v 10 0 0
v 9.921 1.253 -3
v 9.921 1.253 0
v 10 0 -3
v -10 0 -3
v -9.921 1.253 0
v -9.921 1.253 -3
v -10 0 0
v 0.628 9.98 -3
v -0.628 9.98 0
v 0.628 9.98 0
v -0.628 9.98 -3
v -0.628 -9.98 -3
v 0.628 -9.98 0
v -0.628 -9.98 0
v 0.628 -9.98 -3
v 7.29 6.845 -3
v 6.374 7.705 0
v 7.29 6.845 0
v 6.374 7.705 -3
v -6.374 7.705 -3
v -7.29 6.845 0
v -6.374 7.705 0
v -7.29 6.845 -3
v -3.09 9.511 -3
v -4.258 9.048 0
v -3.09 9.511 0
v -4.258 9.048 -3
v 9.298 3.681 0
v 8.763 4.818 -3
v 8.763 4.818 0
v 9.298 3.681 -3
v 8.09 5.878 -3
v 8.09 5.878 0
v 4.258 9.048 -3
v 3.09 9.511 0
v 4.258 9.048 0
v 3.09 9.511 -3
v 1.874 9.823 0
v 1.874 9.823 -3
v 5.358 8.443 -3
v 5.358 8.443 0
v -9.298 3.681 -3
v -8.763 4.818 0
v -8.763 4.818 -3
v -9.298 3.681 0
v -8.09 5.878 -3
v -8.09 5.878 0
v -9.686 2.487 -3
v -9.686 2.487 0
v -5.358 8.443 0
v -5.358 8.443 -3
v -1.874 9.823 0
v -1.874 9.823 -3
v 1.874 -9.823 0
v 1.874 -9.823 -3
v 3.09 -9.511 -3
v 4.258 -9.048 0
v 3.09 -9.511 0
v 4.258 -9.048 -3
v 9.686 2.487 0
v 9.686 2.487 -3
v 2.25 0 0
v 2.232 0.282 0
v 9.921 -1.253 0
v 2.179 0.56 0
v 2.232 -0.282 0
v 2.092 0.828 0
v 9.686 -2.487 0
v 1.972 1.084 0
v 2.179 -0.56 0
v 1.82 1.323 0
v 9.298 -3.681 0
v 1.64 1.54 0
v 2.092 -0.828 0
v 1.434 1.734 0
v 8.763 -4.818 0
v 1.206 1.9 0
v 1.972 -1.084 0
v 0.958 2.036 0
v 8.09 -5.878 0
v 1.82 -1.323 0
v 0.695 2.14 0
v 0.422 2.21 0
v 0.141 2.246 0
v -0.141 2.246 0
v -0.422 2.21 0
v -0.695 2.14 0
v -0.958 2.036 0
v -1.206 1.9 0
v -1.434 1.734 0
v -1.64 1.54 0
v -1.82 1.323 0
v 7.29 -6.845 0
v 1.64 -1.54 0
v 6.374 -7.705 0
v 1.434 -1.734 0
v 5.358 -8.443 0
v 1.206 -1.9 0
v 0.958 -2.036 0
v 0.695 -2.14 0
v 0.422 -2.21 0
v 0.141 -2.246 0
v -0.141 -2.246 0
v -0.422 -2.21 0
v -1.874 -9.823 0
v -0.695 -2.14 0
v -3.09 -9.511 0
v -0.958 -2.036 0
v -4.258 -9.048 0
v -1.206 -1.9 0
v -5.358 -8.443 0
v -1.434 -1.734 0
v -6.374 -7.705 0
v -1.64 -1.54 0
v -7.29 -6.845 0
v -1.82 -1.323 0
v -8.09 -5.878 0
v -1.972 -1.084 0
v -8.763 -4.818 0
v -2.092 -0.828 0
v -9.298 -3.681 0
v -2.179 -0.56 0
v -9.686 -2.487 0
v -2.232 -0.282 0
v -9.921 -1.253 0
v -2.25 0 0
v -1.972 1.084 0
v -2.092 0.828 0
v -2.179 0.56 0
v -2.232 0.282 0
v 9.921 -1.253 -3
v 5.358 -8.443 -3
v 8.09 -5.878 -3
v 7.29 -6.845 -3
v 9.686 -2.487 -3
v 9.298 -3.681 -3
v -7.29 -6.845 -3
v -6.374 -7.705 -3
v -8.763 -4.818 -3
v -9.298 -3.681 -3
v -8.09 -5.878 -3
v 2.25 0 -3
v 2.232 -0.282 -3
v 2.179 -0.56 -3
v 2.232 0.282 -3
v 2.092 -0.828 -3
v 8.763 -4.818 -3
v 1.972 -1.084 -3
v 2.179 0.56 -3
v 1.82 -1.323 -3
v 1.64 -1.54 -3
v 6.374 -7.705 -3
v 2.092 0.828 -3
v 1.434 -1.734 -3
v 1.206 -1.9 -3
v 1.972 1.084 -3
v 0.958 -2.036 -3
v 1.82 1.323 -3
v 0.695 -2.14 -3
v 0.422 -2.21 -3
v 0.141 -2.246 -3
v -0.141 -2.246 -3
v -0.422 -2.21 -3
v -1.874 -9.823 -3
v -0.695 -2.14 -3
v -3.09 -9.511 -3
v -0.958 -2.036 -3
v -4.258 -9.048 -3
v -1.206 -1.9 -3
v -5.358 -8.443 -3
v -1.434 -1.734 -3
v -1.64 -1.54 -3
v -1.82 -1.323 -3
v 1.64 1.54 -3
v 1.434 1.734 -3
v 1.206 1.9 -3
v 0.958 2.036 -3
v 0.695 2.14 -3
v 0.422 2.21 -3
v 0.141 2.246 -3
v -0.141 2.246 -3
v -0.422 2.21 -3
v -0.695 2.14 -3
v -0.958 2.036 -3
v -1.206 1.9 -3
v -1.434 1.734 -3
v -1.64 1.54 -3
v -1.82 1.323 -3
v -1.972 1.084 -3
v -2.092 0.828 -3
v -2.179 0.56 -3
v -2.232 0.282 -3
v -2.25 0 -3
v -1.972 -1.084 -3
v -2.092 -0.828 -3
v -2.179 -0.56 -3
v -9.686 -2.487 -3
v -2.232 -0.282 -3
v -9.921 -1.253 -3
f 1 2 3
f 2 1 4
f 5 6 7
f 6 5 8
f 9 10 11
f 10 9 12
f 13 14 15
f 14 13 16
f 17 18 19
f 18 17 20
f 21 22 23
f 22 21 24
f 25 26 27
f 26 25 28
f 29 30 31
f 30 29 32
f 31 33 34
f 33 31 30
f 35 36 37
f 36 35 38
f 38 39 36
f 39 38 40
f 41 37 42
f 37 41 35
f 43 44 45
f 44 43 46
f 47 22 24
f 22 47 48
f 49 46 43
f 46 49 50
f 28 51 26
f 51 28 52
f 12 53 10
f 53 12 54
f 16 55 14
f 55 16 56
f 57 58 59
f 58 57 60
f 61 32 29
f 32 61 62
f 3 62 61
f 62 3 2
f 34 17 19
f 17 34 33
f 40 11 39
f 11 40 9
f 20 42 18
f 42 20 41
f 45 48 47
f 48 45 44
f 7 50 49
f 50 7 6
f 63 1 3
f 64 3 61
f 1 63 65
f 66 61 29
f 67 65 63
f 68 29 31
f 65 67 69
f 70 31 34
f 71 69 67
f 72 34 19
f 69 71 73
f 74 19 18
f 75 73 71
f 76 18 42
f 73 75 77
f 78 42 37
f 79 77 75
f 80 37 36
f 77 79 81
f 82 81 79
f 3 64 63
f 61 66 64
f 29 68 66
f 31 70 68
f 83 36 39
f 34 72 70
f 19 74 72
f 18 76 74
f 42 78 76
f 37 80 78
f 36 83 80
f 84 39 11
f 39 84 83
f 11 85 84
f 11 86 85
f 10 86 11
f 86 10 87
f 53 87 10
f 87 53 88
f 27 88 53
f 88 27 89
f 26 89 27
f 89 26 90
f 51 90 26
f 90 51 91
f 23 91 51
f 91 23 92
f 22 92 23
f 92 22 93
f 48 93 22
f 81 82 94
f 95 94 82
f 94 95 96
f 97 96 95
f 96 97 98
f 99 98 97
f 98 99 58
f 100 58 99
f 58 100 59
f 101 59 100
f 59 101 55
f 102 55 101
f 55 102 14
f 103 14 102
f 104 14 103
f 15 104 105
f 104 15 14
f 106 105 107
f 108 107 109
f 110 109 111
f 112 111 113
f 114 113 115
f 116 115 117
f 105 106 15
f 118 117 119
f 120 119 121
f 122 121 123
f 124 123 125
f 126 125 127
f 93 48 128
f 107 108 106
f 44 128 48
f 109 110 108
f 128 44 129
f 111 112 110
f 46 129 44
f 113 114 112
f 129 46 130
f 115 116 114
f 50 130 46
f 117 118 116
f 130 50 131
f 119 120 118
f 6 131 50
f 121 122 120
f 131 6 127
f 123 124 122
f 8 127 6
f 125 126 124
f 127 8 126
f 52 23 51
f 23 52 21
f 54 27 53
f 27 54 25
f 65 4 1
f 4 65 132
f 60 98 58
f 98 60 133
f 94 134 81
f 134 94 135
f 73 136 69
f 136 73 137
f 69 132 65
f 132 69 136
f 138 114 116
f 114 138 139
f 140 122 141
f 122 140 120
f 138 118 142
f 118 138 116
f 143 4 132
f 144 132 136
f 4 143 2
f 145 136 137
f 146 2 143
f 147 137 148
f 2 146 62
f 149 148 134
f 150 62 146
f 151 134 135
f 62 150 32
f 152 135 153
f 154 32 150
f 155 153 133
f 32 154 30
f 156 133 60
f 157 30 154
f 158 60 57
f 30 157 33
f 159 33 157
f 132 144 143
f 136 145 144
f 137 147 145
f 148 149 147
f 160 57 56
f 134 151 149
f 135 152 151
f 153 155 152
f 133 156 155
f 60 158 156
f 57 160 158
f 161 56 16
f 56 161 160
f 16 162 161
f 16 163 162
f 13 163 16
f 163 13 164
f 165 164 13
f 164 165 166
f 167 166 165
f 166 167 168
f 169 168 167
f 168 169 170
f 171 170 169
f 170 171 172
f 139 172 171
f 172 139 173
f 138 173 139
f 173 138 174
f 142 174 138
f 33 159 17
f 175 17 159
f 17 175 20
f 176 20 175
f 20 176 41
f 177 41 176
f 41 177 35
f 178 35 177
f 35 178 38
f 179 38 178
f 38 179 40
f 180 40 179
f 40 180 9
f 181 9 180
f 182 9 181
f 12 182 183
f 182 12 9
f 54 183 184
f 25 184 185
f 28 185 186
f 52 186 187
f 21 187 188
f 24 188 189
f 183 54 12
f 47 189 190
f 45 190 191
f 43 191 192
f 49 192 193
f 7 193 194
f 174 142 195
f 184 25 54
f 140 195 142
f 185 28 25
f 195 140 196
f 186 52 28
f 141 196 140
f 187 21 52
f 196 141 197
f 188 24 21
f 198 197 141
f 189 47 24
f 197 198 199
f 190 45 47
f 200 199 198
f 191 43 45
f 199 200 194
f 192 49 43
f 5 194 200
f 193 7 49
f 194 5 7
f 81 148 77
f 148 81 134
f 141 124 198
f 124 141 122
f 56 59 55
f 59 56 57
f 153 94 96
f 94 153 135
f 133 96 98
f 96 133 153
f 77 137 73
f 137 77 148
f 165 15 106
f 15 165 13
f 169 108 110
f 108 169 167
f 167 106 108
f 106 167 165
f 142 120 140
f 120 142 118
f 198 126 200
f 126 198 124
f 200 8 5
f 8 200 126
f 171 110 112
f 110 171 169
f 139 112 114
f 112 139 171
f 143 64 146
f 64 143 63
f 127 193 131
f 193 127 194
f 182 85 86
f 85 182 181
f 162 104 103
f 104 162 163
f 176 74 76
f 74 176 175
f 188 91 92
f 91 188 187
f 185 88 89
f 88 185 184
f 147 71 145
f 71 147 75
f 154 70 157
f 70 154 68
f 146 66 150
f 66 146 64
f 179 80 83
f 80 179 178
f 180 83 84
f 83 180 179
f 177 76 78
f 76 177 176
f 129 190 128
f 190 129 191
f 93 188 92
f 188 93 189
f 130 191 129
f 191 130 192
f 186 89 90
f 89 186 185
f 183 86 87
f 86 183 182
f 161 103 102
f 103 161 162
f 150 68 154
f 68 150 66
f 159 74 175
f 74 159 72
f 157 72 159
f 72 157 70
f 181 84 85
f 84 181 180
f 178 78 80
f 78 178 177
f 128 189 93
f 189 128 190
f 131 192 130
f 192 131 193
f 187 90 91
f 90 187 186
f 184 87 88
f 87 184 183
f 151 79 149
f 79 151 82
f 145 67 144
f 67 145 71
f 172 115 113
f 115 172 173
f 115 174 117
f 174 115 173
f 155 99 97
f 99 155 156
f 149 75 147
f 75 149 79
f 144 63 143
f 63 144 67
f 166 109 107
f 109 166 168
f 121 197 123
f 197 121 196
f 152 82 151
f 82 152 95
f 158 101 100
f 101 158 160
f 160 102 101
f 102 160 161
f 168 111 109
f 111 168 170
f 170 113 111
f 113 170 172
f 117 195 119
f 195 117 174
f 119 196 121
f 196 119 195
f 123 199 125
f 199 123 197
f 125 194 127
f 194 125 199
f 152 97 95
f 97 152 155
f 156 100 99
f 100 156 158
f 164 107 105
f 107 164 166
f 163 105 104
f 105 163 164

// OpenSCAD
$fn = 50;


difference() {
	union() {
		translate(v = [0, 0, -3.0000000000]) {
			cylinder(h = 3, r = 10.0000000000);
		}
		cylinder(h = 0, r = 19.0000000000);
	}
	union() {
		#translate(v = [0, 0, -3]) {
			cylinder(h = 3, r = 2.2500000000);
		}
	}
}
